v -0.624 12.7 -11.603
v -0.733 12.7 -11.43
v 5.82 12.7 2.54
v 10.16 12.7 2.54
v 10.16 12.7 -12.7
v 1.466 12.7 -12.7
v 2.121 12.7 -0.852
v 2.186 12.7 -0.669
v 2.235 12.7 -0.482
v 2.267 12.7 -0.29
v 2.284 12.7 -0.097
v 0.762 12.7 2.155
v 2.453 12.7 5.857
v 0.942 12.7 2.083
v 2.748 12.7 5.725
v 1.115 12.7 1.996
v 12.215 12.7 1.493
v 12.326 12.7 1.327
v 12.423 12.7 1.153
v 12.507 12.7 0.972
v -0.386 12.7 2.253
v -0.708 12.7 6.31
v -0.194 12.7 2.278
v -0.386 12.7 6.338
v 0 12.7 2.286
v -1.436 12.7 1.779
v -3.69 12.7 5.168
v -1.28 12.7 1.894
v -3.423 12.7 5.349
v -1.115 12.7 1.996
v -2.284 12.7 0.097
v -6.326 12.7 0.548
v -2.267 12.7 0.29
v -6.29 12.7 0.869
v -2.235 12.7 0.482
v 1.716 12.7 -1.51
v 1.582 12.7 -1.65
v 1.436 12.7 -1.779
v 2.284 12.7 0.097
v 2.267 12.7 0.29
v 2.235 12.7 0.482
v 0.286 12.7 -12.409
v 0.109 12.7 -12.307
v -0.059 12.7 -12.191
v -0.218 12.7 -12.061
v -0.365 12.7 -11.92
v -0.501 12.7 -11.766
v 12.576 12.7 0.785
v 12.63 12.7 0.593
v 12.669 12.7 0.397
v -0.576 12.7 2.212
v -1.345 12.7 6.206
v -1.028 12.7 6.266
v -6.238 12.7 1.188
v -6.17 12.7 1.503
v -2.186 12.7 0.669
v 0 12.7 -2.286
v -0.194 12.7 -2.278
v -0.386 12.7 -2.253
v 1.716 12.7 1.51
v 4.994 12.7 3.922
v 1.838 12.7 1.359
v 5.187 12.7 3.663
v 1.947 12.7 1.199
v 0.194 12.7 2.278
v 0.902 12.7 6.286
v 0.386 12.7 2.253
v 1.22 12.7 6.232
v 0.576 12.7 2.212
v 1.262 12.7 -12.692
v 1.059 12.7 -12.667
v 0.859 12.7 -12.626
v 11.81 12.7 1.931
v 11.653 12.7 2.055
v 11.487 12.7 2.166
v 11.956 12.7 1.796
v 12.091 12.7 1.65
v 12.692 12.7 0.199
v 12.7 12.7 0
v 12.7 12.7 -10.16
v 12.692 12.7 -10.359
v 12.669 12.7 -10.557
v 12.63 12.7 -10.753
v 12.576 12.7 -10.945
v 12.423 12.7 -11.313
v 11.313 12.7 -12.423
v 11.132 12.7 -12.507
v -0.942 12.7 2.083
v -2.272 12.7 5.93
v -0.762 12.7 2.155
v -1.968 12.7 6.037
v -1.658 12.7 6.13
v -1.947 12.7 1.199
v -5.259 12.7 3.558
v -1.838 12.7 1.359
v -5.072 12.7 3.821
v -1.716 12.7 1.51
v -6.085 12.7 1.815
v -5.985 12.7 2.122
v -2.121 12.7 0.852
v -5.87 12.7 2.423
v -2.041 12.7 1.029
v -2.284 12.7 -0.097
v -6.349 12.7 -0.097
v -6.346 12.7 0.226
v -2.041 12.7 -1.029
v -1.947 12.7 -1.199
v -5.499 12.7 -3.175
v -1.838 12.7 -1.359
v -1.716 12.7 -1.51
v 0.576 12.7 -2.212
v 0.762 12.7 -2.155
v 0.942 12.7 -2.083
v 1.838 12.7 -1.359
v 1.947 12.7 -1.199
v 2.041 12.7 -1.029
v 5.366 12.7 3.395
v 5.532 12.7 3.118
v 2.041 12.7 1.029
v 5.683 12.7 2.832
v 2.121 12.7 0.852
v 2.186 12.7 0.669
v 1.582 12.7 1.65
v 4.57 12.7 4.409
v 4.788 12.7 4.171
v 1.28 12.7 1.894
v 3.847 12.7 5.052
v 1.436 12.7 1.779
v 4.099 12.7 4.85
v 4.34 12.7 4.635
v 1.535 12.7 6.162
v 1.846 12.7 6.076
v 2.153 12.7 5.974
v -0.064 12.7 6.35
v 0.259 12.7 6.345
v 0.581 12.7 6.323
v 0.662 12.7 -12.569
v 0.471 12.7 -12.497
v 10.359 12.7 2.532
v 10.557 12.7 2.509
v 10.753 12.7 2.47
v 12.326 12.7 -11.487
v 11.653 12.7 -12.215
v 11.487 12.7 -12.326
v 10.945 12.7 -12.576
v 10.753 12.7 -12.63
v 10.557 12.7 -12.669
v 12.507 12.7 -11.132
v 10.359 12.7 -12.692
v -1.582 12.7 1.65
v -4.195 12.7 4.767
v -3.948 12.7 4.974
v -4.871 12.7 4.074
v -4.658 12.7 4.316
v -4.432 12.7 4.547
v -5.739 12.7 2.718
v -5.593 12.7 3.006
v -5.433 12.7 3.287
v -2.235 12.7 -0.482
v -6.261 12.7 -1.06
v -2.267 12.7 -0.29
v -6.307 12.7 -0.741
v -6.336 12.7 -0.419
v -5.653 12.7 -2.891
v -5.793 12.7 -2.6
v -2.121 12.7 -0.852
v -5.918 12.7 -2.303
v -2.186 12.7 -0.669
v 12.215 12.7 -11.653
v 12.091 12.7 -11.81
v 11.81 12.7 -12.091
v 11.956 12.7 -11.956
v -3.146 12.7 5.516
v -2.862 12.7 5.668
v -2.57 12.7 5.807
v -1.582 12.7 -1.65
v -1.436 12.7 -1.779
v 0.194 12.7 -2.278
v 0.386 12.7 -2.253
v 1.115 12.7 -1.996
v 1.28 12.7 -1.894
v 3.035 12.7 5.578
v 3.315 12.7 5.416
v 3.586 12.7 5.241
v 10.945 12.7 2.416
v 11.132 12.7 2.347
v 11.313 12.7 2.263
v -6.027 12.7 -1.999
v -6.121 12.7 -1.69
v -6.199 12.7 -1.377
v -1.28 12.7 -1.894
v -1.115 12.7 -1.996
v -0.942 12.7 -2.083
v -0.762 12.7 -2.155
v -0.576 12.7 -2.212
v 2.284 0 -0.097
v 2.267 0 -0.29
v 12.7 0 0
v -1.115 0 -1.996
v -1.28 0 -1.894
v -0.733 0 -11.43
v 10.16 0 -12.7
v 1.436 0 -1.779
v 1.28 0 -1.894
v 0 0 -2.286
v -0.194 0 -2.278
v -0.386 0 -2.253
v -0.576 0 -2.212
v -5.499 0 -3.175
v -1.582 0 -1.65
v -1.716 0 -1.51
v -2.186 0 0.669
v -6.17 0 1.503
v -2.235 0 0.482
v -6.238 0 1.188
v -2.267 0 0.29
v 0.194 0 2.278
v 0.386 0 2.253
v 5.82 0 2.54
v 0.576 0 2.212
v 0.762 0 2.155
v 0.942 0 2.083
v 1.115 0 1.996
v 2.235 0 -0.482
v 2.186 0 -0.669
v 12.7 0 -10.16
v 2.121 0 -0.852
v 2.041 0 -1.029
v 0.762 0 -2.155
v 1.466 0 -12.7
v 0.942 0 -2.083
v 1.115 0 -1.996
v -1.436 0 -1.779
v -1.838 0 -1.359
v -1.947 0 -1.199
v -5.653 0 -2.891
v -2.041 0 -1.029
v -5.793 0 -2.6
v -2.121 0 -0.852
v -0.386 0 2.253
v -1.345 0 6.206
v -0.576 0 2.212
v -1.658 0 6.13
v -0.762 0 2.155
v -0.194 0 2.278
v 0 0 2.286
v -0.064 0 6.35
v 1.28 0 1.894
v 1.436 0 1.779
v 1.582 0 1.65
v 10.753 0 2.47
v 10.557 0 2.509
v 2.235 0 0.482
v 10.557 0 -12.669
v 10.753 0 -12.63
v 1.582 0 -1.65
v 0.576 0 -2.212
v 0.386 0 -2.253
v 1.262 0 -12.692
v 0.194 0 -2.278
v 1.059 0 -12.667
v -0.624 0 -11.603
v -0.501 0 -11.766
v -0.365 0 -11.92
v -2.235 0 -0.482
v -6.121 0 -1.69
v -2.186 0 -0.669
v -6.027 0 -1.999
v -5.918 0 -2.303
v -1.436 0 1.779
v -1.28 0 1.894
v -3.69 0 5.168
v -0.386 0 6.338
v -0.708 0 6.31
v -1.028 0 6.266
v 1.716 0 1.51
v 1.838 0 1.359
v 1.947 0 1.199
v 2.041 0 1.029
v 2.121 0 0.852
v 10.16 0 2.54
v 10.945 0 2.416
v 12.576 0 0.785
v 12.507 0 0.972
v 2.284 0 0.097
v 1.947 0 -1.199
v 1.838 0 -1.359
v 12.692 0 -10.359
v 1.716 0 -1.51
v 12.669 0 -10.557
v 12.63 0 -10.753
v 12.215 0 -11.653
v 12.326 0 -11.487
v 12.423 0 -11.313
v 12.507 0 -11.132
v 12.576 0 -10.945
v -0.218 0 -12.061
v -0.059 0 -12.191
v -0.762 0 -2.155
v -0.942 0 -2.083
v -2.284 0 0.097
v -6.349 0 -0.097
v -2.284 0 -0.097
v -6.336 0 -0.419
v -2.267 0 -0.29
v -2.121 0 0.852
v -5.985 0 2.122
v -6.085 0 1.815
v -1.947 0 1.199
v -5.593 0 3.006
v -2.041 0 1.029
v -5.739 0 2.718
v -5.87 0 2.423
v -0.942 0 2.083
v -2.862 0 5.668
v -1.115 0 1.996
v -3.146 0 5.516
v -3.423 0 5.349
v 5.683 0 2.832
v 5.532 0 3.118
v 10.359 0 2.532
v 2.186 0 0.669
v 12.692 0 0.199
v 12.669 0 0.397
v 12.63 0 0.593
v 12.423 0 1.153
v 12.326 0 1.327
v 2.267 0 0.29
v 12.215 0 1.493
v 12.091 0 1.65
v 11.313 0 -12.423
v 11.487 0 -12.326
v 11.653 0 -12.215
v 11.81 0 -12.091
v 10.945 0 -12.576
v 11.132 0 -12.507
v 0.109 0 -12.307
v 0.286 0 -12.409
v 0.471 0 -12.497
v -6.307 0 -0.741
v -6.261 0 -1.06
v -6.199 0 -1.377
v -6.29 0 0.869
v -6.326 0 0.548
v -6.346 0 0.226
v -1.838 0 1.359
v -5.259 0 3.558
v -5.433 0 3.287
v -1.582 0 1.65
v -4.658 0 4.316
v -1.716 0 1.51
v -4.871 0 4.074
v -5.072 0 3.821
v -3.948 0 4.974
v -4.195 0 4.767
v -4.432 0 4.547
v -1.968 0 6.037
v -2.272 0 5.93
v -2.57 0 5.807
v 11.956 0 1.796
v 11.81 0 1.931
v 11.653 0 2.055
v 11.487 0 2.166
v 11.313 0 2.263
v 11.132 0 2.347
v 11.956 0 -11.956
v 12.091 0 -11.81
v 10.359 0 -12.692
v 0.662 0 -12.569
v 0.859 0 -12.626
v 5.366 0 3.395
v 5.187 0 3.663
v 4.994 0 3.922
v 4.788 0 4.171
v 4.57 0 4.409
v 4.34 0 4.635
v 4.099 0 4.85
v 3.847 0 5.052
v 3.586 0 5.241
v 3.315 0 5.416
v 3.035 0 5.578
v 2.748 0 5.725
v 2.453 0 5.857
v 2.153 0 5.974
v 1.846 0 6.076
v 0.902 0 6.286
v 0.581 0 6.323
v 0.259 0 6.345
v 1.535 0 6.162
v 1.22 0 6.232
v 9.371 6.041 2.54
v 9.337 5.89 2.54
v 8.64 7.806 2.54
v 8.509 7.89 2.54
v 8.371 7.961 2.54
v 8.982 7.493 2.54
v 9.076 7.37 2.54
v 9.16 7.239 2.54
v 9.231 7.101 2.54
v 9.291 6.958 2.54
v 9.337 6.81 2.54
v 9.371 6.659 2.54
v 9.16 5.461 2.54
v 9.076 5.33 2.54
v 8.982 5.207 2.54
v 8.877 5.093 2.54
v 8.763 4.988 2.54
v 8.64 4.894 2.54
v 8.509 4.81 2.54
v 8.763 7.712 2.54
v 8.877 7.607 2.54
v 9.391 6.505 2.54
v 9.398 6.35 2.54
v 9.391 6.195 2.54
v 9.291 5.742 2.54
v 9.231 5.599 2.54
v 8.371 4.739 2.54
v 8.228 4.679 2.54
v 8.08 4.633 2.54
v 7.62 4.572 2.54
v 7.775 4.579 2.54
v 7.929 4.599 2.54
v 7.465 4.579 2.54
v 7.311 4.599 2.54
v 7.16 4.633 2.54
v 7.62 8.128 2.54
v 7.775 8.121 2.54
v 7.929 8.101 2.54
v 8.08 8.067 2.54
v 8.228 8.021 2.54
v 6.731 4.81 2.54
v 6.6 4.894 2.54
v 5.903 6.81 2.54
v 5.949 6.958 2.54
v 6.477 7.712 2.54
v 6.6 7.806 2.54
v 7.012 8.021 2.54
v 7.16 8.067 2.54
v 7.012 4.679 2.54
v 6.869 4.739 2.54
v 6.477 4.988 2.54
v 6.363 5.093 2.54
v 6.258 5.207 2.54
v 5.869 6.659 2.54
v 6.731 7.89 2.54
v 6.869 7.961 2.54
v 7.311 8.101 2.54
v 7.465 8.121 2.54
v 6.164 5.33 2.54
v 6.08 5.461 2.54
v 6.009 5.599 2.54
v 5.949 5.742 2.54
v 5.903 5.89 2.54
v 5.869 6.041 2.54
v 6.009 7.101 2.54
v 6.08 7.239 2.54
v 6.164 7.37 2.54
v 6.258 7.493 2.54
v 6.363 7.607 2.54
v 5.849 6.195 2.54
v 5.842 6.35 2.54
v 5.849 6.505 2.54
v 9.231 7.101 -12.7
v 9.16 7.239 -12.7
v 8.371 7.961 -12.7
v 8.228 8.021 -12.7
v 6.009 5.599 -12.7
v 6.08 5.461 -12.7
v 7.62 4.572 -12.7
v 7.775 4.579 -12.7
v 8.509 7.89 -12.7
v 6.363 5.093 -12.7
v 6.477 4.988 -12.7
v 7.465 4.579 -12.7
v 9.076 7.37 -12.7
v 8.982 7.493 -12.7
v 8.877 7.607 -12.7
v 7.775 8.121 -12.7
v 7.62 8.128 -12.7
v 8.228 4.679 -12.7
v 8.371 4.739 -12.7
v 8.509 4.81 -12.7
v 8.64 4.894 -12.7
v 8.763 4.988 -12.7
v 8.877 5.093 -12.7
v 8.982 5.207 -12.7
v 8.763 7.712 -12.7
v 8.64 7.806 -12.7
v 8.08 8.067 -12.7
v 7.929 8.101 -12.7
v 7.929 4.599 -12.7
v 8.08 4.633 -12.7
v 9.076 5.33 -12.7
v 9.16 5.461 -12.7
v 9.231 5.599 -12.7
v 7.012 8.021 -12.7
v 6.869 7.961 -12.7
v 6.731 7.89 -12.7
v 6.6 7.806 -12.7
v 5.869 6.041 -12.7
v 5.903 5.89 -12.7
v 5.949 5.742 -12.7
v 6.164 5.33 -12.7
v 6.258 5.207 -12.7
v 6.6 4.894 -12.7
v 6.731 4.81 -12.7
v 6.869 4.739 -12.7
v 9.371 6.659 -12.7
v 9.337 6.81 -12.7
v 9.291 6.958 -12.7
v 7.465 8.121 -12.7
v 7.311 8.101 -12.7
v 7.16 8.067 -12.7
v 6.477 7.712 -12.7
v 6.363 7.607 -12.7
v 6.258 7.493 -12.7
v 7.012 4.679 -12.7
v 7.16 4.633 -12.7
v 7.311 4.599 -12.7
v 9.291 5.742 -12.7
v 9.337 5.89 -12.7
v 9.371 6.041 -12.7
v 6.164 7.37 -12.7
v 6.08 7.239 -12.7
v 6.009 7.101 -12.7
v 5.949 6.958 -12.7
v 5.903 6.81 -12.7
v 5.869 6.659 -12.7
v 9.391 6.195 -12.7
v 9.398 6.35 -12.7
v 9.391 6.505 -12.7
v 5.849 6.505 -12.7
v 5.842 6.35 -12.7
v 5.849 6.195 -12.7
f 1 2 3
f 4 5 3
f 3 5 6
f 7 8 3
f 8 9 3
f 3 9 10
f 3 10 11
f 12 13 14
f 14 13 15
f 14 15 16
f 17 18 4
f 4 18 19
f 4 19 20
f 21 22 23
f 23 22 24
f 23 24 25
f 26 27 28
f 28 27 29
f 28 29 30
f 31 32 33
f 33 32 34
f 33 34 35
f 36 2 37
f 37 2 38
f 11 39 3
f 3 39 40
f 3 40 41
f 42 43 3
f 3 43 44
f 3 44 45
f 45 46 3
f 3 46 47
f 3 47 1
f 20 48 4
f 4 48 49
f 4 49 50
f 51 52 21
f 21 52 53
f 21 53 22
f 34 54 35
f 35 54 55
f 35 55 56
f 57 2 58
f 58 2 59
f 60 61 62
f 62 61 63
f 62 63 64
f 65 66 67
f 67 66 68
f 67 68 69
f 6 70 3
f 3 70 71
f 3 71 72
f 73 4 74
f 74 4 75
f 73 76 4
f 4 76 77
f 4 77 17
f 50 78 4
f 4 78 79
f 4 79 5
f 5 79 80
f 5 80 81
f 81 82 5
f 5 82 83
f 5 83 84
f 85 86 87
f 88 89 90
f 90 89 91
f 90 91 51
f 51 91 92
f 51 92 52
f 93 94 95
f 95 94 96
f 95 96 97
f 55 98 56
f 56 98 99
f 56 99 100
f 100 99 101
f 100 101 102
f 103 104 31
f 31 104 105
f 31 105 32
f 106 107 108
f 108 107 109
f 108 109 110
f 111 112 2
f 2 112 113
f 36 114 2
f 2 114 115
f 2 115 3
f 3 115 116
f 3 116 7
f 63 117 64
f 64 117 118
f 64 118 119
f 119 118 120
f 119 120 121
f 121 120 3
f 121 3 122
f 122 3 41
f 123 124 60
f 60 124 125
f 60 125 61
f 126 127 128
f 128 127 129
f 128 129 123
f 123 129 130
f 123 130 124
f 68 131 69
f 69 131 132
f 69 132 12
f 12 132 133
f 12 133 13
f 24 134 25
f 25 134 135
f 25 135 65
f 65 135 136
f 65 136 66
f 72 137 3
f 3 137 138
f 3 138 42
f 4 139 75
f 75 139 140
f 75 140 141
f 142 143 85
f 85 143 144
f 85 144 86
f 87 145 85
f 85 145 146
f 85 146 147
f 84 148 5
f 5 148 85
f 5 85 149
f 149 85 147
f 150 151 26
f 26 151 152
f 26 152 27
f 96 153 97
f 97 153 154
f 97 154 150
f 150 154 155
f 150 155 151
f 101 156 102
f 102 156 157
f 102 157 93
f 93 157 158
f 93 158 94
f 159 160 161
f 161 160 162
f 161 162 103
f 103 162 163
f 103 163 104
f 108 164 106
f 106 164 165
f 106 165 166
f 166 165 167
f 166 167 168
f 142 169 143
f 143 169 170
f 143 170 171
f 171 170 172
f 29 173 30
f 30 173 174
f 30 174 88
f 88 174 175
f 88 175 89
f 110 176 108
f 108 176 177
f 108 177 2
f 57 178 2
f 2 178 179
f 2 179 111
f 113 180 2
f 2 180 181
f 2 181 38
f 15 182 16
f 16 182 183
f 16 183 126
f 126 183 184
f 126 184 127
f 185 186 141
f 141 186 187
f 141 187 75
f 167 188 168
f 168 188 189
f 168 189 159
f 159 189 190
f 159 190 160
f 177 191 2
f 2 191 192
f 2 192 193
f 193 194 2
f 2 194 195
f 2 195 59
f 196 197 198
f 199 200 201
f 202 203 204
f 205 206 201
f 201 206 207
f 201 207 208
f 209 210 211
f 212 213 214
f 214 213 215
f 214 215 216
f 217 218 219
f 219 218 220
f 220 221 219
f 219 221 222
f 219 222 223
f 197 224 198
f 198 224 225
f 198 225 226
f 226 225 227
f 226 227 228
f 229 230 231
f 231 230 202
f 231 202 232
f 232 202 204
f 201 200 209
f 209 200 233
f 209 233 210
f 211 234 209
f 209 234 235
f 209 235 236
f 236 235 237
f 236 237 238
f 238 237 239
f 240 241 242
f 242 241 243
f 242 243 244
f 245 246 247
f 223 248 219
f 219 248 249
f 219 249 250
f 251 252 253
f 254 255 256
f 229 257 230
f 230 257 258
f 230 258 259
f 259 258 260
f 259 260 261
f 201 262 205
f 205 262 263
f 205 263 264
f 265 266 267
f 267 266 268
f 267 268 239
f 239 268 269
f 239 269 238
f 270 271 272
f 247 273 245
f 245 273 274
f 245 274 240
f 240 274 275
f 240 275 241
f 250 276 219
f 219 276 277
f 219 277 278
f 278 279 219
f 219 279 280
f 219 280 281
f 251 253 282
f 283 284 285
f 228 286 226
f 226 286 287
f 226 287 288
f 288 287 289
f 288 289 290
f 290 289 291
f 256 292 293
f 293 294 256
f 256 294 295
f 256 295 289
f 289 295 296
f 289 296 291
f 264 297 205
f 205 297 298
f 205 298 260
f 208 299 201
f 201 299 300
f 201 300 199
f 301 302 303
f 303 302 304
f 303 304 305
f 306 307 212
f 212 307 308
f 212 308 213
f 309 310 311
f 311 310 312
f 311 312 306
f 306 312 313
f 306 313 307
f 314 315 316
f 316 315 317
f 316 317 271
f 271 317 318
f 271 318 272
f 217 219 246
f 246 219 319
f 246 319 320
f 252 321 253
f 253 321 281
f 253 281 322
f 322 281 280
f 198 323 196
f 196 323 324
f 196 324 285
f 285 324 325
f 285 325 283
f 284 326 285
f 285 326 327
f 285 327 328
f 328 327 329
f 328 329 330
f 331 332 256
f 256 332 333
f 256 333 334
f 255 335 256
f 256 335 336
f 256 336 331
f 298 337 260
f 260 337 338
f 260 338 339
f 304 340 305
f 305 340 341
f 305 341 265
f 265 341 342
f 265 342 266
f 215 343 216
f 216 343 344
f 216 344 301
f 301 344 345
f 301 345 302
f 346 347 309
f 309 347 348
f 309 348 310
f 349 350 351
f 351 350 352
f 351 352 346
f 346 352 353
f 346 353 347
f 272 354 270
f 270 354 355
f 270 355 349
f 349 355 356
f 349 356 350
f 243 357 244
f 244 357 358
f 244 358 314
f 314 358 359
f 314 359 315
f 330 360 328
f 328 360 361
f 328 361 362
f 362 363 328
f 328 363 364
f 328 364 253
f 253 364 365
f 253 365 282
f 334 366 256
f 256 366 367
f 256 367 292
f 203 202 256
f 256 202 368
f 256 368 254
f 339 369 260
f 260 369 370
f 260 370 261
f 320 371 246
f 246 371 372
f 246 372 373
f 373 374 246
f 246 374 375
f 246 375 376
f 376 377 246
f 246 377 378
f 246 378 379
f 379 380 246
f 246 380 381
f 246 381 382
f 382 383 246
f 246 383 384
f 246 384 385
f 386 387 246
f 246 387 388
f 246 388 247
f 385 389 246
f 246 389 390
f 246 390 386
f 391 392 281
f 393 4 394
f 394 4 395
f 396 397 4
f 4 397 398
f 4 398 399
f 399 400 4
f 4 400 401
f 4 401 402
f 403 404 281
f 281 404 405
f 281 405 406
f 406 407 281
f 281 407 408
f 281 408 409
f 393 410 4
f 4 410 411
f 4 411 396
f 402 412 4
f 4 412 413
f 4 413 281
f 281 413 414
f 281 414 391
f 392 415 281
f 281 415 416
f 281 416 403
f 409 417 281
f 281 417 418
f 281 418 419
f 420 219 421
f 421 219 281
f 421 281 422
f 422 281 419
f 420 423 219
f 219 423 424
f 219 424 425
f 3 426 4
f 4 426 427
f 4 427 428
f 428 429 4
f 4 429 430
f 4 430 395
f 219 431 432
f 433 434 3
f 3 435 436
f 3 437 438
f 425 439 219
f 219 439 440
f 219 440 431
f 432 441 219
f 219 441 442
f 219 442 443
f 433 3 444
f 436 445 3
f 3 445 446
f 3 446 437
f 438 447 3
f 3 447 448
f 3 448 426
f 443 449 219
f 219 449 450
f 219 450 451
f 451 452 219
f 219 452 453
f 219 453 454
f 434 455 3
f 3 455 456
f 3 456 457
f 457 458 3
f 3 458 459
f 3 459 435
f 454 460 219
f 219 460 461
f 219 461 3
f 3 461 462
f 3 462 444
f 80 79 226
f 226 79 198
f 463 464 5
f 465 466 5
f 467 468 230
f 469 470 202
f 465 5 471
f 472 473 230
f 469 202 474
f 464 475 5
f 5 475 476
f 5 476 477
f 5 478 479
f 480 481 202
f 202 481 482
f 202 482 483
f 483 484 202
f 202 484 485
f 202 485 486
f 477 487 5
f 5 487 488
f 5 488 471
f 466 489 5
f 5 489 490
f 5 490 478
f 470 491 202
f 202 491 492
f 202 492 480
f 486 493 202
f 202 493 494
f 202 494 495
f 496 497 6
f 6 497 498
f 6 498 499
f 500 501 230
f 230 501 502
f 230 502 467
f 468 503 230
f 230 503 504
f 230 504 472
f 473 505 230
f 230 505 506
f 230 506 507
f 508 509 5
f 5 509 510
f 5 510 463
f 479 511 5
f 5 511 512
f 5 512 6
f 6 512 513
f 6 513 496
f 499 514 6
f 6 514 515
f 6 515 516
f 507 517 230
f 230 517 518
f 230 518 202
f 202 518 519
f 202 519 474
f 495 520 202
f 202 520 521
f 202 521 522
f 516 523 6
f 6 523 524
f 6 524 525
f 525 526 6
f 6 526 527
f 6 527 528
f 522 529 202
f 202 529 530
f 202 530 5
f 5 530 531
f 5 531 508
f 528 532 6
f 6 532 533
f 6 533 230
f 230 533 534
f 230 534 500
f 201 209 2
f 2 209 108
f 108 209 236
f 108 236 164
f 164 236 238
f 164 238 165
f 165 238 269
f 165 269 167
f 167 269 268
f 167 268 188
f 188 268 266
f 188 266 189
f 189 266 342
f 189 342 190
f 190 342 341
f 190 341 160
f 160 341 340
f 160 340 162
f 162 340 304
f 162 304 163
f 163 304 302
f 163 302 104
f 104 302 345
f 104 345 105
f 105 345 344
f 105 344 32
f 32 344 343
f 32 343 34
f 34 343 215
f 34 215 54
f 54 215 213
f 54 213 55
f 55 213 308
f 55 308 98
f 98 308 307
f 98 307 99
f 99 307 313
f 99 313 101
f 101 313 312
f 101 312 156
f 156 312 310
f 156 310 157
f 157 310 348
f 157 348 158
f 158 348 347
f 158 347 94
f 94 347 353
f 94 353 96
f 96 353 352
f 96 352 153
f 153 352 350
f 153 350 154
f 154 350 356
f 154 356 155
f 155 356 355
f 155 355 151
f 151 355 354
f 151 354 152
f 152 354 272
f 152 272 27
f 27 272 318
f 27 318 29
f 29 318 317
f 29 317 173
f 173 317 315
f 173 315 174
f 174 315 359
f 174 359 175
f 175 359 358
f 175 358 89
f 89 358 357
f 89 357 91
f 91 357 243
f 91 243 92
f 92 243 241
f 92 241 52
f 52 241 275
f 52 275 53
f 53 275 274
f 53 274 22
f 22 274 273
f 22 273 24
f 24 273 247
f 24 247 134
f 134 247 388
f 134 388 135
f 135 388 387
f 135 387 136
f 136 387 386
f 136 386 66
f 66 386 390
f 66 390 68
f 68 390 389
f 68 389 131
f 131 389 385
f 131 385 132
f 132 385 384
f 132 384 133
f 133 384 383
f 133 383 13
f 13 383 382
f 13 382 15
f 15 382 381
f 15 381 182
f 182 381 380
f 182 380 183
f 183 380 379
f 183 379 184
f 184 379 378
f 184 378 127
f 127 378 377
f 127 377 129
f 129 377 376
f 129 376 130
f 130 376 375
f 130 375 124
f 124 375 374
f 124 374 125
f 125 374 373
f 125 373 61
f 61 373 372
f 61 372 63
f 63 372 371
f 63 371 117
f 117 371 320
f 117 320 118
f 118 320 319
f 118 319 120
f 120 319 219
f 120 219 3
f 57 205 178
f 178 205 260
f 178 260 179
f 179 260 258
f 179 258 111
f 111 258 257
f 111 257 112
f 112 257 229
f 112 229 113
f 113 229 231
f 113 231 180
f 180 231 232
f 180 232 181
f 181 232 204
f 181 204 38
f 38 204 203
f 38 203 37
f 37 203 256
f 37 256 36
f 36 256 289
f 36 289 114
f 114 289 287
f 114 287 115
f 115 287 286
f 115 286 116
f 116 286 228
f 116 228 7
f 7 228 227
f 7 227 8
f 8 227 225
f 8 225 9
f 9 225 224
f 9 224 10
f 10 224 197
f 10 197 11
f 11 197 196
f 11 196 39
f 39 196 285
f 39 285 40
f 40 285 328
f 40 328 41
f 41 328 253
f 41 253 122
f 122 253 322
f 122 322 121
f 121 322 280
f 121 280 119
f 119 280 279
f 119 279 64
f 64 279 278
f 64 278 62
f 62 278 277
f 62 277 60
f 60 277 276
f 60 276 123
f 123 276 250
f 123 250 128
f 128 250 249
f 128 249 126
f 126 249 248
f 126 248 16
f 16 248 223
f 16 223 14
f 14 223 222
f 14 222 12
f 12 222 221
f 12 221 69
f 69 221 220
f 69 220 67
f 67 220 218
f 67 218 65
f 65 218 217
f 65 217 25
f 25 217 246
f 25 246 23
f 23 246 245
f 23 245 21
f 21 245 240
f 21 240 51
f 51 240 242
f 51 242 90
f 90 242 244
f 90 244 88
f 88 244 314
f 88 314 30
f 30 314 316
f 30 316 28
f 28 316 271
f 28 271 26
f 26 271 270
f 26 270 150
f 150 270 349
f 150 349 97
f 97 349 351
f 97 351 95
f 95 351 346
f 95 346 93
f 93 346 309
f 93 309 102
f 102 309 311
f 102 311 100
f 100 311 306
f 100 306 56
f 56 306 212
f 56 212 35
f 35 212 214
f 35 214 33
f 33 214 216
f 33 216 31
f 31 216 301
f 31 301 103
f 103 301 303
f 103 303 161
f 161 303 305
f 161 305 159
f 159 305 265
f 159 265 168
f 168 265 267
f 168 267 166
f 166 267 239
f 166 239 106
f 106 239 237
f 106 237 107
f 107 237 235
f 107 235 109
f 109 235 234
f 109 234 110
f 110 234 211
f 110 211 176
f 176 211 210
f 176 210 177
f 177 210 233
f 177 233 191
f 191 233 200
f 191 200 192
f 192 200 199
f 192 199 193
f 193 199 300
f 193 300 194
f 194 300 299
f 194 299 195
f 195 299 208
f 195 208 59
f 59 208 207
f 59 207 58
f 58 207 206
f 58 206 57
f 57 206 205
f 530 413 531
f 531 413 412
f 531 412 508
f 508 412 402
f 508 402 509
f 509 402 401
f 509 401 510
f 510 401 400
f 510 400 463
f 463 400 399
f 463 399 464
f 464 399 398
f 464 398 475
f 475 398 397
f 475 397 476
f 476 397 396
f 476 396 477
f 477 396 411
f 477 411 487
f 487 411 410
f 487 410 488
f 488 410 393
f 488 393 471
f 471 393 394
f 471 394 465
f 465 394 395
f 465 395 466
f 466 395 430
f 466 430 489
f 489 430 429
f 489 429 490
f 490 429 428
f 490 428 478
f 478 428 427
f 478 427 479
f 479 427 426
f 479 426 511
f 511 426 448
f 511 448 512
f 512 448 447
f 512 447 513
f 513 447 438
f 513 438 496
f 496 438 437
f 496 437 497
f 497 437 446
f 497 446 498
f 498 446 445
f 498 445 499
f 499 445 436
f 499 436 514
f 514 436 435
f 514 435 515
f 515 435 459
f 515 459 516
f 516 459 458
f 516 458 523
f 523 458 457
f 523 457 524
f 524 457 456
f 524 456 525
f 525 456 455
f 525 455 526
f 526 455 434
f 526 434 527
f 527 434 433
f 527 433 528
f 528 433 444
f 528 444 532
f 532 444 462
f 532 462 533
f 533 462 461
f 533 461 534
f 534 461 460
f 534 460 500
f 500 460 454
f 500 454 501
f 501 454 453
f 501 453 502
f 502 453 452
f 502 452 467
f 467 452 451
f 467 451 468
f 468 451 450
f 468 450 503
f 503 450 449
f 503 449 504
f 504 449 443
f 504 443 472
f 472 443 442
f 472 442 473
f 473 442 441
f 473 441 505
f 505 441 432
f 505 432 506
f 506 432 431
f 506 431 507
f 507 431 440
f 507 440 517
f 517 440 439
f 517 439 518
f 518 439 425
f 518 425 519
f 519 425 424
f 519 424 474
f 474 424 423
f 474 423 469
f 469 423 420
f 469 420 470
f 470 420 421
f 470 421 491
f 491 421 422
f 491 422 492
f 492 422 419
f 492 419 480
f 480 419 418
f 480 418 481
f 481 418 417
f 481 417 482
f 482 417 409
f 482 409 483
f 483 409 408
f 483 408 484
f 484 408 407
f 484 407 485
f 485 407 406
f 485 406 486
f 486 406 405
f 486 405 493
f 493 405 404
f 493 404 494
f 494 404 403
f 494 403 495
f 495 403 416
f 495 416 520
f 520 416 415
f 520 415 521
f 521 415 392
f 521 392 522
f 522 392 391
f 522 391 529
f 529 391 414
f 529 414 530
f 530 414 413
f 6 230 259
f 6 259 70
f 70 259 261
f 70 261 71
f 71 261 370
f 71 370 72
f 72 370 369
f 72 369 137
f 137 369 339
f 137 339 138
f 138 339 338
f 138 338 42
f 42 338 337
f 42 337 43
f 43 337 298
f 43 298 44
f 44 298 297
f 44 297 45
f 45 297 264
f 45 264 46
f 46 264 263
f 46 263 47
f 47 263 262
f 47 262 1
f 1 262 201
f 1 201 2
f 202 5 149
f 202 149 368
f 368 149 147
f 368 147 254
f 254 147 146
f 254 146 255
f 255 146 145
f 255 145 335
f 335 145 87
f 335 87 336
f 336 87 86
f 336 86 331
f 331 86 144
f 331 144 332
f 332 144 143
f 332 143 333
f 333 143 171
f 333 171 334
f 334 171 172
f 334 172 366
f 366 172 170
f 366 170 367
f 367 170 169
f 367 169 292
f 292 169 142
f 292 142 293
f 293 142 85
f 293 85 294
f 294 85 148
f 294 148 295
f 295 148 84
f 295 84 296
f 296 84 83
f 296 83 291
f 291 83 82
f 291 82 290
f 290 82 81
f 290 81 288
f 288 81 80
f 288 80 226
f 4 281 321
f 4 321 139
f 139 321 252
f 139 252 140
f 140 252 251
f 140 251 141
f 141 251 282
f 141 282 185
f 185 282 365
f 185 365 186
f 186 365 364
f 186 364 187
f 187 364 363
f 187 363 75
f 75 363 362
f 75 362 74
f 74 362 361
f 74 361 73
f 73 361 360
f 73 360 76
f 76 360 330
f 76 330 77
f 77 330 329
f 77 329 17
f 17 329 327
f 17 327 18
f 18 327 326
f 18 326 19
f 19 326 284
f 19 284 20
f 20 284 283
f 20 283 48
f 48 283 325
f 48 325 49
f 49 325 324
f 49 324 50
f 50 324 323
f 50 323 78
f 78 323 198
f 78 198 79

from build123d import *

# Parameters (mm, degrees)
SKETCH1_R           = 2.286
BOSS_EXTRUDE1_DEPTH = 12.7
SKETCH2_R           = 1.778
CUT_EXTRUDE1_DEPTH  = 24.554990979
FILLET1_R           = 2.54


with BuildPart() as part:
    # Sketch1 → Boss-Extrude1 (new body)
    with BuildSketch(Plane(origin=(0, 0, 0), x_dir=(1, 0, 0), z_dir=(0, 1, 0))):
        with BuildLine():
            Line((-5.499261314, 3.175), (0, 12.7))
            Line((0, 12.7), (12.7, 12.7))
            Line((12.7, 12.7), (12.7, -2.54))
            Line((12.7, -2.54), (5.819871133, -2.54))
            ThreePointArc((5.819871133, -2.54), (-2.861992997, -5.668465056), (-5.499261314, 3.175))
        make_face()
        with Locations(Location((0, 0, 0), (0, 0, 270))):
            Circle(SKETCH1_R, mode=Mode.SUBTRACT)
    extrude(amount=BOSS_EXTRUDE1_DEPTH)

    # Sketch2 → Cut-Extrude1 (cut, through all)
    with BuildSketch(Plane.XY.offset(2.54)):
        with Locations((7.62, 6.35)):
            Circle(SKETCH2_R)
    extrude(amount=-CUT_EXTRUDE1_DEPTH, mode=Mode.SUBTRACT)

    # Fillet1
    fillet1_edges = [part.edges().sort_by_distance(p)[0] for p in [
        (0, 6.35, -12.7),
        (12.7, 6.35, -12.7),
        (12.7, 6.35, 2.54),
    ]]
    fillet(fillet1_edges, radius=FILLET1_R)


solid = part.part
